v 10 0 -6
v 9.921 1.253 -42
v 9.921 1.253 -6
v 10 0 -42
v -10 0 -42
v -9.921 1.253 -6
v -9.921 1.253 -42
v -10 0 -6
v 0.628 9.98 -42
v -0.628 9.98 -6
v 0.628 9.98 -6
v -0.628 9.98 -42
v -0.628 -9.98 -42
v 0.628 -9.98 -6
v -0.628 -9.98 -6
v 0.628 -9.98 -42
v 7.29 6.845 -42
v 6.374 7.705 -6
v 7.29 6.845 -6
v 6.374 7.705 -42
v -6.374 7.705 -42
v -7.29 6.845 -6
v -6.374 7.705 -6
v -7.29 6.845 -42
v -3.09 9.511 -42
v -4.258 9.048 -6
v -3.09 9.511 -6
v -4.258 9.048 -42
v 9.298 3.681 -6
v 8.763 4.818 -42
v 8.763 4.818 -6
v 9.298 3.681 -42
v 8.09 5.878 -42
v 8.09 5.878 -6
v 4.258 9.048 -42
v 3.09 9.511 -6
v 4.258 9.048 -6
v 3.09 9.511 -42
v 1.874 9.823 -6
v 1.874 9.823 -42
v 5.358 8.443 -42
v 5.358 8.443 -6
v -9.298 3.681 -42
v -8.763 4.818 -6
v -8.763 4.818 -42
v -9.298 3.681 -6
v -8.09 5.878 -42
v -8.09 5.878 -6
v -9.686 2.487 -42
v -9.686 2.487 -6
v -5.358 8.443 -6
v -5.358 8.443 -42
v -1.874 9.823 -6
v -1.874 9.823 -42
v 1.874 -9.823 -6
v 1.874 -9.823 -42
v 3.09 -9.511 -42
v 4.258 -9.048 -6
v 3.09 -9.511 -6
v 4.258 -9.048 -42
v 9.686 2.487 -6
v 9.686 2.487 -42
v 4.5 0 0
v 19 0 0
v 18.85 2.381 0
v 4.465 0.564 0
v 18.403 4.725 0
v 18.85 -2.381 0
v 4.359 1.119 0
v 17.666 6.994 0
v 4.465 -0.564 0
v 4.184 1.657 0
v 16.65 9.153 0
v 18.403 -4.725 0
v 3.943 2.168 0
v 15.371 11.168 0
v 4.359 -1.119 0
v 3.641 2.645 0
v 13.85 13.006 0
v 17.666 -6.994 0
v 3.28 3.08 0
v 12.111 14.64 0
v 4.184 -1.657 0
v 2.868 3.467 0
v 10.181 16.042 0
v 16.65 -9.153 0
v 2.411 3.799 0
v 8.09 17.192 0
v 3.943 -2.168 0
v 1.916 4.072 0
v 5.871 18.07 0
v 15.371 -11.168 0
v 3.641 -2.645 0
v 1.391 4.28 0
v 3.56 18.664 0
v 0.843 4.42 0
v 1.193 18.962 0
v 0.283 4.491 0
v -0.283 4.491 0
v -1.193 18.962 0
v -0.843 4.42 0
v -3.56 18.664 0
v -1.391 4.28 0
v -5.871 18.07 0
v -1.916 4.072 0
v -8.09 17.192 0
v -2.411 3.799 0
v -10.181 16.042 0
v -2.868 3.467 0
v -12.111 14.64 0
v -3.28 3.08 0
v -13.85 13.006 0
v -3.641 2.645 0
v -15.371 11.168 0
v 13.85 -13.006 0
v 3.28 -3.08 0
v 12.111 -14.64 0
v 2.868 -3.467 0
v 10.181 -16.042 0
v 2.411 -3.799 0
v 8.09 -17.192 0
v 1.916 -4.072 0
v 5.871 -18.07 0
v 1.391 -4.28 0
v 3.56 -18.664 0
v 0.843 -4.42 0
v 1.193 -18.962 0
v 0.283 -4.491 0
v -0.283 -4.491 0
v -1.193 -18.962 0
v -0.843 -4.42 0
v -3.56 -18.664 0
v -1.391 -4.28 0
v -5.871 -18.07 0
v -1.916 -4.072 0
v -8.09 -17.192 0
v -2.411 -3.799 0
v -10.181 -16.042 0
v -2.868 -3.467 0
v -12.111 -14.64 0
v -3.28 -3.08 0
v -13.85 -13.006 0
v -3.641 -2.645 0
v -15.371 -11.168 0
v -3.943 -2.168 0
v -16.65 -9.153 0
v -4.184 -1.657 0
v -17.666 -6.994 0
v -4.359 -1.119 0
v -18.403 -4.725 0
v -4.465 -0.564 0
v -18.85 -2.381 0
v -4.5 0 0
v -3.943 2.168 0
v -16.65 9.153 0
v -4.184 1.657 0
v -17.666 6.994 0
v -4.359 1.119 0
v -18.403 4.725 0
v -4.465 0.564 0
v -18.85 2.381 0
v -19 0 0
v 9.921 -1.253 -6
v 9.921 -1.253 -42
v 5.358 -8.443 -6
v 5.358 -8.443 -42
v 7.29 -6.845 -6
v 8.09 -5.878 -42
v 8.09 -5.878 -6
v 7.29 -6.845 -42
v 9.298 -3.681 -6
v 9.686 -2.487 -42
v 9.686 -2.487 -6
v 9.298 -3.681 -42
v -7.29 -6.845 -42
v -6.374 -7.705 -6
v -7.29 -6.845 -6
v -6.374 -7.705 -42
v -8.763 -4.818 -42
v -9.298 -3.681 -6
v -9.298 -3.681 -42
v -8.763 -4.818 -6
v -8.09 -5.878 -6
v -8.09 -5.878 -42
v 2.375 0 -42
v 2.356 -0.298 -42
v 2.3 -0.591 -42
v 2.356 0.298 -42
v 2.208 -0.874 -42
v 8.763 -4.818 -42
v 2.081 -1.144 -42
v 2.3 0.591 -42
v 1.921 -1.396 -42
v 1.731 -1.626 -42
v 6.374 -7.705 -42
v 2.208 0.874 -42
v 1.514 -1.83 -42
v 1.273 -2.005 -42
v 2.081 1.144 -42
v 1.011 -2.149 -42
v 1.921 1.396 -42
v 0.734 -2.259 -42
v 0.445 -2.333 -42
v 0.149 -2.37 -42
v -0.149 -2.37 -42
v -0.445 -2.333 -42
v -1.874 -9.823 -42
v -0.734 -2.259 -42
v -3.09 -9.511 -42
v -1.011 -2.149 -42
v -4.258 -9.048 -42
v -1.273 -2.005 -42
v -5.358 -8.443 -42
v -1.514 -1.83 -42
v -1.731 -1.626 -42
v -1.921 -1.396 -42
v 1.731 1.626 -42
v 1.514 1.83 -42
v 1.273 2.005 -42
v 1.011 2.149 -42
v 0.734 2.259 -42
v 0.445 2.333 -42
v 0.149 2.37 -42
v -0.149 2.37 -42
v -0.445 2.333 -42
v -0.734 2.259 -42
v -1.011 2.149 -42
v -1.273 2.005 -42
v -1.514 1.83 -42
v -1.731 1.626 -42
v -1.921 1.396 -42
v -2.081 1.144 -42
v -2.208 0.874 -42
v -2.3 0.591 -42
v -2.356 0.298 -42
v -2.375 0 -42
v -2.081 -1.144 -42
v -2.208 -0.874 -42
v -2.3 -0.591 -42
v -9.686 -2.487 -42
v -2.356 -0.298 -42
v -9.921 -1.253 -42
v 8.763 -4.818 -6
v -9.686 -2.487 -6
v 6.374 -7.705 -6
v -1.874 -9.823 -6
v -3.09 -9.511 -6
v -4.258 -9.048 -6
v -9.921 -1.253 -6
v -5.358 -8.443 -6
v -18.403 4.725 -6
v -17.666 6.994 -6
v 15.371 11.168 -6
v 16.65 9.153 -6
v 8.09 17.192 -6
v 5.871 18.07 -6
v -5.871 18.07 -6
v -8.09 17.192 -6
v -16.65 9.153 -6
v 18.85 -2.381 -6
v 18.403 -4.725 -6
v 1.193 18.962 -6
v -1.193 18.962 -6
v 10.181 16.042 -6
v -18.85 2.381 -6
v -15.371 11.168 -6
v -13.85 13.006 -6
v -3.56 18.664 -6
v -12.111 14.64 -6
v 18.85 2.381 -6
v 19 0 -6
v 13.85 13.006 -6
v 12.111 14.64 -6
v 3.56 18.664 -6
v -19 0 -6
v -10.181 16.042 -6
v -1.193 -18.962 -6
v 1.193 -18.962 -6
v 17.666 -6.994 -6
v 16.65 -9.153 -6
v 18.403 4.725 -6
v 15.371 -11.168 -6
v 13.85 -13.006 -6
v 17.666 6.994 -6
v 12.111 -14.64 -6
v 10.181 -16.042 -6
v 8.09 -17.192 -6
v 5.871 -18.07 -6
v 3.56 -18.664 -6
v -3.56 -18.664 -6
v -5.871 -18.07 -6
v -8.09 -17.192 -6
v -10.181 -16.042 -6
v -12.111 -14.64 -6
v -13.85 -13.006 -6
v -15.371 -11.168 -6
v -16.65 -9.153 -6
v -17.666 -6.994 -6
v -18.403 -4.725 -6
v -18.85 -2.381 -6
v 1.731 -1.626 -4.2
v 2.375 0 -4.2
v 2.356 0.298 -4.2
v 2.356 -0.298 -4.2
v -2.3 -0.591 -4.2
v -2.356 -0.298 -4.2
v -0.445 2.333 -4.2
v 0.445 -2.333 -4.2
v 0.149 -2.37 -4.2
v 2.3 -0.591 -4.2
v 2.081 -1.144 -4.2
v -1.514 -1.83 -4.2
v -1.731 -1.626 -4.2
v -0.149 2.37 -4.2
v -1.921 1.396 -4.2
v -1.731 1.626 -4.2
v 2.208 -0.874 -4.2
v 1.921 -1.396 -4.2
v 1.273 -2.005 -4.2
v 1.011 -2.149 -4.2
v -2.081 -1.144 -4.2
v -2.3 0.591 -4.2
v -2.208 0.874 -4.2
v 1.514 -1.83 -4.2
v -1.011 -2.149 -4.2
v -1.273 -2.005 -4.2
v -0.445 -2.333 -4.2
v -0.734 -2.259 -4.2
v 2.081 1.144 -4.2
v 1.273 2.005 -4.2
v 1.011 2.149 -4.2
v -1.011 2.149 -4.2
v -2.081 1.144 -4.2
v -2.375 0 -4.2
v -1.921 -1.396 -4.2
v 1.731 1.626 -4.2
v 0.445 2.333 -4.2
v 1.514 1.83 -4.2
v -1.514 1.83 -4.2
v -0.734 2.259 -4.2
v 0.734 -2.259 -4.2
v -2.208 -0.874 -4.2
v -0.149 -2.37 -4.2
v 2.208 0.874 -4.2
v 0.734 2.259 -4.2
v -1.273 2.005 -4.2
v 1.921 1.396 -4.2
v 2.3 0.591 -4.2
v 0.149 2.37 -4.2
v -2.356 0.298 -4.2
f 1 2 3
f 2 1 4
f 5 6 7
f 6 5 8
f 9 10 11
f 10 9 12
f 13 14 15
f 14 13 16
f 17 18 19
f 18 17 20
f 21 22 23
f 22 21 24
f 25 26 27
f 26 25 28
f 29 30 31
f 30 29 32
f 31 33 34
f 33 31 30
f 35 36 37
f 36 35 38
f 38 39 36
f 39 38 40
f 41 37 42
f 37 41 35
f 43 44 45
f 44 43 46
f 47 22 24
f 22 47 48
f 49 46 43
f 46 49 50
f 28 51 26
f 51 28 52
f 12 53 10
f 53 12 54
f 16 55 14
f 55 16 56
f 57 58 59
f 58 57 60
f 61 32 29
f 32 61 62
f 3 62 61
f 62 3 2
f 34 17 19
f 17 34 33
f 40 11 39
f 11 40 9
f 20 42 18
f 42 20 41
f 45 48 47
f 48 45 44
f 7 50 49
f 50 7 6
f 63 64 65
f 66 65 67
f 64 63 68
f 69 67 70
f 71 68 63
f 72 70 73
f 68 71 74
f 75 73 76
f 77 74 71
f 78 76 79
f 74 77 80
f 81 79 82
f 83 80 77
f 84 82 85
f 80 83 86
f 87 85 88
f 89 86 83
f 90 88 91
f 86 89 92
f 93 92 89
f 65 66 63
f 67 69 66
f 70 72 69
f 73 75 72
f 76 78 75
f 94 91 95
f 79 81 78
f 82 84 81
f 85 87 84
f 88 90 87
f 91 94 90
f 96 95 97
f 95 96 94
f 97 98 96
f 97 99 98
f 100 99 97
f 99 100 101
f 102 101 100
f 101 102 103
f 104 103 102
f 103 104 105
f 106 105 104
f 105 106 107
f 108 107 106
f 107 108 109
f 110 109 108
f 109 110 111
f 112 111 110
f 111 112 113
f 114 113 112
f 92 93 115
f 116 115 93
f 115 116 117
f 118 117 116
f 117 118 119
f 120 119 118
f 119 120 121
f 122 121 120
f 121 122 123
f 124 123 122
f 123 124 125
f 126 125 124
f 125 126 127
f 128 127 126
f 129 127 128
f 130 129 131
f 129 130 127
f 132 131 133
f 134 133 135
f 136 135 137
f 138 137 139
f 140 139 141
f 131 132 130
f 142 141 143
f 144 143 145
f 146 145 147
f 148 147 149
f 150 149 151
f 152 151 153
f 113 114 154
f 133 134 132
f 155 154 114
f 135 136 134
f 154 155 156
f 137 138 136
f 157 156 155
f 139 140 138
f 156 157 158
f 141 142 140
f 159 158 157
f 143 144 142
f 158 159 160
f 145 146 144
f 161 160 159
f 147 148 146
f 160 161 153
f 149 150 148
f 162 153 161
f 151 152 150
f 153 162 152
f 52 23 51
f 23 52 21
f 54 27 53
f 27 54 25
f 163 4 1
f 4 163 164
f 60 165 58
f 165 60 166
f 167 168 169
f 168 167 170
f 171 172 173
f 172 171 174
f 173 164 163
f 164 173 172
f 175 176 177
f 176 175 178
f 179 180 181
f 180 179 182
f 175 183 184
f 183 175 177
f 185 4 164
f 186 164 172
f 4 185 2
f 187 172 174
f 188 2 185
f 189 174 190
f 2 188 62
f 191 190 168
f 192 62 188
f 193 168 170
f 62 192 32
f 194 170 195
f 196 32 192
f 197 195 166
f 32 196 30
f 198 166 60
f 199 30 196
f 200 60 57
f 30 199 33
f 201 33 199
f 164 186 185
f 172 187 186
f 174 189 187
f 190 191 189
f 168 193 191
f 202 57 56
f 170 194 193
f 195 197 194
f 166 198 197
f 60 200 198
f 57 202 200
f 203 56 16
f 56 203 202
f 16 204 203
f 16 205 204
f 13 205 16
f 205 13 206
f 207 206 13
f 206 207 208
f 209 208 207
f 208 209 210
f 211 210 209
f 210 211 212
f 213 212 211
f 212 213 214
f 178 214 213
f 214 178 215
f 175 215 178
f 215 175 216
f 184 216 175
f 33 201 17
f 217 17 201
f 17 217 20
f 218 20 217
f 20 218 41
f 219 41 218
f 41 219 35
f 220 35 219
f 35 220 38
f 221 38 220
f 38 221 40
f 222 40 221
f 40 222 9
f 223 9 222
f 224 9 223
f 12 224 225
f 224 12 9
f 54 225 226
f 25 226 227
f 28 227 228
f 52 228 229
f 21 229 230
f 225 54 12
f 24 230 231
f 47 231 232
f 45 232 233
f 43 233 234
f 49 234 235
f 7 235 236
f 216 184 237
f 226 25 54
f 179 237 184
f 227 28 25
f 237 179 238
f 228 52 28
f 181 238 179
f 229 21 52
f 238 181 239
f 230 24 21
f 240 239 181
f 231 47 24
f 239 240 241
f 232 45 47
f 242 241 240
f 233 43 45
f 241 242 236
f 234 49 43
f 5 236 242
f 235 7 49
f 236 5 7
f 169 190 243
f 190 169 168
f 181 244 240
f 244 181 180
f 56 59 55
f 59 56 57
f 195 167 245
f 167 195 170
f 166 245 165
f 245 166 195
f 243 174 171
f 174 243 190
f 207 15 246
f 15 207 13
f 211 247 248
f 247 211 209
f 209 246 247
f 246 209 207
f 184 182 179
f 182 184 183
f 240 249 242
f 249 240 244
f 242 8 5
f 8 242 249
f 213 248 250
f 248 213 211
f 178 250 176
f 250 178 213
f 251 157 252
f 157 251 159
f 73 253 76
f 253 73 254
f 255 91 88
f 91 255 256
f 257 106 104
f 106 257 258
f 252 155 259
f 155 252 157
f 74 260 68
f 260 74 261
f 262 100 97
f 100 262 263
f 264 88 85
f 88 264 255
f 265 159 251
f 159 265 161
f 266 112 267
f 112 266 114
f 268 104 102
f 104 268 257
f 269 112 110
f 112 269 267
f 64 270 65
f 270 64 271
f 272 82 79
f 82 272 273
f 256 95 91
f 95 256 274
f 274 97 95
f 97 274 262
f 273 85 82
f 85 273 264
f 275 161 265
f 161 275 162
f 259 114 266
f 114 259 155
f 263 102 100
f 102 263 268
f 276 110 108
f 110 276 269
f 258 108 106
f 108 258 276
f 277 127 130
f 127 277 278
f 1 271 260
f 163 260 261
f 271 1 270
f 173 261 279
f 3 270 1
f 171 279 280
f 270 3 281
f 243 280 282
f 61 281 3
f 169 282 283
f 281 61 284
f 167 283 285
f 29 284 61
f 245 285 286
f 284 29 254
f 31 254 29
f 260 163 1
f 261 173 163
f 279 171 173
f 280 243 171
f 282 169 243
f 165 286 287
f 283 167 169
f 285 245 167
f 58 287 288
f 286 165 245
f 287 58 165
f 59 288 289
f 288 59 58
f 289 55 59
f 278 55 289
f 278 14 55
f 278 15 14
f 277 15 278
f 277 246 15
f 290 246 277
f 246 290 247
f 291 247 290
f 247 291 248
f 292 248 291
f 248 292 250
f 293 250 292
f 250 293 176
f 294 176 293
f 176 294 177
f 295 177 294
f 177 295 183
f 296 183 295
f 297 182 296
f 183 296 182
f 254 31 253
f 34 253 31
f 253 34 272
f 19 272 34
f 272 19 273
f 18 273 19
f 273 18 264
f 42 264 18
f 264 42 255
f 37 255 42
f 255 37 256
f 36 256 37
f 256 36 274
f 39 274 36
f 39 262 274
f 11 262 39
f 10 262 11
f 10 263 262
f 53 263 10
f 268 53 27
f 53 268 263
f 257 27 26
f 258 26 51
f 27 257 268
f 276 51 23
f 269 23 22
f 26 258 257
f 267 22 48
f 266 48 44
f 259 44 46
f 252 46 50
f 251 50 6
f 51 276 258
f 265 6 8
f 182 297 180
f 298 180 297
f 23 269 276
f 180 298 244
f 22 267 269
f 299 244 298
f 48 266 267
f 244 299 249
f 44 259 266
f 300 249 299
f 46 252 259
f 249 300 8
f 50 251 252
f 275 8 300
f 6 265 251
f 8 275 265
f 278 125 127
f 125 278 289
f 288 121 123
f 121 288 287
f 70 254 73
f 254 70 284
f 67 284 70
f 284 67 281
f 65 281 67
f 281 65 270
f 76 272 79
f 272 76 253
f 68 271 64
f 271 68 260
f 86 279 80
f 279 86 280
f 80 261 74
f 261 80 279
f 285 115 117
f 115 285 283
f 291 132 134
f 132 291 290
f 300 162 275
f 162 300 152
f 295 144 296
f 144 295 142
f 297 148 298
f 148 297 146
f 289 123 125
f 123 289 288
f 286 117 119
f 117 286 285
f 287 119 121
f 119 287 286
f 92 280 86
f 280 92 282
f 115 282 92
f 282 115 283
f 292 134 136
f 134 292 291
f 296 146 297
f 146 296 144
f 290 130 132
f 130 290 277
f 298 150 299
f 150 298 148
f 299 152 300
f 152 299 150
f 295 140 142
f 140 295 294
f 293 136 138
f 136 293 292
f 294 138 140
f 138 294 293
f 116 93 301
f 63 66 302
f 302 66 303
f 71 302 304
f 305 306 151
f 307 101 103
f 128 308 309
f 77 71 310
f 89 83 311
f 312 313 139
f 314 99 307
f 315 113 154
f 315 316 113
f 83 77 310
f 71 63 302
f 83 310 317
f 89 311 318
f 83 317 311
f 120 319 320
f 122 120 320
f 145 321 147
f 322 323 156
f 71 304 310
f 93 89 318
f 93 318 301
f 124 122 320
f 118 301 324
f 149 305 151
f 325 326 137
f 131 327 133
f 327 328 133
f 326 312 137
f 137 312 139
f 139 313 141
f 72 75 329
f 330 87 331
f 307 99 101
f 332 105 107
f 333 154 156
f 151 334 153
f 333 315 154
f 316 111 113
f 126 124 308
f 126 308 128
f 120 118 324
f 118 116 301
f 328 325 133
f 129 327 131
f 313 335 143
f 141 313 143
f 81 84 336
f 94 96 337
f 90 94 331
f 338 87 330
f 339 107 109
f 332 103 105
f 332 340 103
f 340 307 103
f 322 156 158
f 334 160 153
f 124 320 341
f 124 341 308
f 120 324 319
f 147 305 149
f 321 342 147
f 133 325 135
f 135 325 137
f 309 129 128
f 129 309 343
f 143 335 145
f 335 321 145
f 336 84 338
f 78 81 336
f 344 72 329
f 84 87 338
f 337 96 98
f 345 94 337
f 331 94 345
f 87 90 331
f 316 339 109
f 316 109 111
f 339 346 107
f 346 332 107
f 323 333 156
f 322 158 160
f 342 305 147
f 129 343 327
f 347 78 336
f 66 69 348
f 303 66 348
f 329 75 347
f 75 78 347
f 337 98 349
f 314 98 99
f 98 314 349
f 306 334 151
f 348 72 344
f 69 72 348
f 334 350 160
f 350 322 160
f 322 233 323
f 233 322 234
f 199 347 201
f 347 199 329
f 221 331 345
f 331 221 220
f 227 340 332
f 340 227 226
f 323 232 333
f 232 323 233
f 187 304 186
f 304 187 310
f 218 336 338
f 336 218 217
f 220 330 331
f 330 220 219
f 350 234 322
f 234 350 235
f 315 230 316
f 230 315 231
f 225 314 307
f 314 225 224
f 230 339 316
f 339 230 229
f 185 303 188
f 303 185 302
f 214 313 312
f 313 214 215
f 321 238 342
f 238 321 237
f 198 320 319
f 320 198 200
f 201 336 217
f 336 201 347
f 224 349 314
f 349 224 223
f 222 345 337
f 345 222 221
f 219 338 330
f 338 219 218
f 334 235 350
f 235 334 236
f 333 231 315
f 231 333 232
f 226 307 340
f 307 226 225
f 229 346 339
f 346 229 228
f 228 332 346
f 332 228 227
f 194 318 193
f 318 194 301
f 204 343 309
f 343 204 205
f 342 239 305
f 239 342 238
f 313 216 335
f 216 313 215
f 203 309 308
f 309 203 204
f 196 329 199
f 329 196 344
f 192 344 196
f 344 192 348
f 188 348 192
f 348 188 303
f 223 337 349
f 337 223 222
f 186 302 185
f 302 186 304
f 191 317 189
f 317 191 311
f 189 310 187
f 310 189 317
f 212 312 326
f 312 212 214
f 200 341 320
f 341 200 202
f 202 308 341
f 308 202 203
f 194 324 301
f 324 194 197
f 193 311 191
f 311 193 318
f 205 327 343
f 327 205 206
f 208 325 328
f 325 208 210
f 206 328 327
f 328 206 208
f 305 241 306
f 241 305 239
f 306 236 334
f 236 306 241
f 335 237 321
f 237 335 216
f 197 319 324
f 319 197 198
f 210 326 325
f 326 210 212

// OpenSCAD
$fn = 50;


difference() {
	union() {
		translate(v = [0, 0, -42.0000000000]) {
			cylinder(h = 42, r = 10.0000000000);
		}
		translate(v = [0, 0, -6.0000000000]) {
			cylinder(h = 6, r = 19.0000000000);
		}
	}
	union() {
		translate(v = [0, 0, 0]) {
			rotate(a = [0, 0, 0]) {
				difference() {
					union() {
						#translate(v = [0, 0, -42.0000000000]) {
							cylinder(h = 42, r = 2.2500000000);
						}
						#translate(v = [0, 0, -4.2000000000]) {
							cylinder(h = 4.2000000000, r = 10.0000000000, r1 = 2.3750000000, r2 = 4.5000000000);
						}
						#translate(v = [0, 0, -42.0000000000]) {
							cylinder(h = 42, r = 2.3750000000);
						}
						#translate(v = [0, 0, -42.0000000000]) {
							cylinder(h = 42, r = 2.2500000000);
						}
					}
					union();
				}
			}
		}
	}
}
